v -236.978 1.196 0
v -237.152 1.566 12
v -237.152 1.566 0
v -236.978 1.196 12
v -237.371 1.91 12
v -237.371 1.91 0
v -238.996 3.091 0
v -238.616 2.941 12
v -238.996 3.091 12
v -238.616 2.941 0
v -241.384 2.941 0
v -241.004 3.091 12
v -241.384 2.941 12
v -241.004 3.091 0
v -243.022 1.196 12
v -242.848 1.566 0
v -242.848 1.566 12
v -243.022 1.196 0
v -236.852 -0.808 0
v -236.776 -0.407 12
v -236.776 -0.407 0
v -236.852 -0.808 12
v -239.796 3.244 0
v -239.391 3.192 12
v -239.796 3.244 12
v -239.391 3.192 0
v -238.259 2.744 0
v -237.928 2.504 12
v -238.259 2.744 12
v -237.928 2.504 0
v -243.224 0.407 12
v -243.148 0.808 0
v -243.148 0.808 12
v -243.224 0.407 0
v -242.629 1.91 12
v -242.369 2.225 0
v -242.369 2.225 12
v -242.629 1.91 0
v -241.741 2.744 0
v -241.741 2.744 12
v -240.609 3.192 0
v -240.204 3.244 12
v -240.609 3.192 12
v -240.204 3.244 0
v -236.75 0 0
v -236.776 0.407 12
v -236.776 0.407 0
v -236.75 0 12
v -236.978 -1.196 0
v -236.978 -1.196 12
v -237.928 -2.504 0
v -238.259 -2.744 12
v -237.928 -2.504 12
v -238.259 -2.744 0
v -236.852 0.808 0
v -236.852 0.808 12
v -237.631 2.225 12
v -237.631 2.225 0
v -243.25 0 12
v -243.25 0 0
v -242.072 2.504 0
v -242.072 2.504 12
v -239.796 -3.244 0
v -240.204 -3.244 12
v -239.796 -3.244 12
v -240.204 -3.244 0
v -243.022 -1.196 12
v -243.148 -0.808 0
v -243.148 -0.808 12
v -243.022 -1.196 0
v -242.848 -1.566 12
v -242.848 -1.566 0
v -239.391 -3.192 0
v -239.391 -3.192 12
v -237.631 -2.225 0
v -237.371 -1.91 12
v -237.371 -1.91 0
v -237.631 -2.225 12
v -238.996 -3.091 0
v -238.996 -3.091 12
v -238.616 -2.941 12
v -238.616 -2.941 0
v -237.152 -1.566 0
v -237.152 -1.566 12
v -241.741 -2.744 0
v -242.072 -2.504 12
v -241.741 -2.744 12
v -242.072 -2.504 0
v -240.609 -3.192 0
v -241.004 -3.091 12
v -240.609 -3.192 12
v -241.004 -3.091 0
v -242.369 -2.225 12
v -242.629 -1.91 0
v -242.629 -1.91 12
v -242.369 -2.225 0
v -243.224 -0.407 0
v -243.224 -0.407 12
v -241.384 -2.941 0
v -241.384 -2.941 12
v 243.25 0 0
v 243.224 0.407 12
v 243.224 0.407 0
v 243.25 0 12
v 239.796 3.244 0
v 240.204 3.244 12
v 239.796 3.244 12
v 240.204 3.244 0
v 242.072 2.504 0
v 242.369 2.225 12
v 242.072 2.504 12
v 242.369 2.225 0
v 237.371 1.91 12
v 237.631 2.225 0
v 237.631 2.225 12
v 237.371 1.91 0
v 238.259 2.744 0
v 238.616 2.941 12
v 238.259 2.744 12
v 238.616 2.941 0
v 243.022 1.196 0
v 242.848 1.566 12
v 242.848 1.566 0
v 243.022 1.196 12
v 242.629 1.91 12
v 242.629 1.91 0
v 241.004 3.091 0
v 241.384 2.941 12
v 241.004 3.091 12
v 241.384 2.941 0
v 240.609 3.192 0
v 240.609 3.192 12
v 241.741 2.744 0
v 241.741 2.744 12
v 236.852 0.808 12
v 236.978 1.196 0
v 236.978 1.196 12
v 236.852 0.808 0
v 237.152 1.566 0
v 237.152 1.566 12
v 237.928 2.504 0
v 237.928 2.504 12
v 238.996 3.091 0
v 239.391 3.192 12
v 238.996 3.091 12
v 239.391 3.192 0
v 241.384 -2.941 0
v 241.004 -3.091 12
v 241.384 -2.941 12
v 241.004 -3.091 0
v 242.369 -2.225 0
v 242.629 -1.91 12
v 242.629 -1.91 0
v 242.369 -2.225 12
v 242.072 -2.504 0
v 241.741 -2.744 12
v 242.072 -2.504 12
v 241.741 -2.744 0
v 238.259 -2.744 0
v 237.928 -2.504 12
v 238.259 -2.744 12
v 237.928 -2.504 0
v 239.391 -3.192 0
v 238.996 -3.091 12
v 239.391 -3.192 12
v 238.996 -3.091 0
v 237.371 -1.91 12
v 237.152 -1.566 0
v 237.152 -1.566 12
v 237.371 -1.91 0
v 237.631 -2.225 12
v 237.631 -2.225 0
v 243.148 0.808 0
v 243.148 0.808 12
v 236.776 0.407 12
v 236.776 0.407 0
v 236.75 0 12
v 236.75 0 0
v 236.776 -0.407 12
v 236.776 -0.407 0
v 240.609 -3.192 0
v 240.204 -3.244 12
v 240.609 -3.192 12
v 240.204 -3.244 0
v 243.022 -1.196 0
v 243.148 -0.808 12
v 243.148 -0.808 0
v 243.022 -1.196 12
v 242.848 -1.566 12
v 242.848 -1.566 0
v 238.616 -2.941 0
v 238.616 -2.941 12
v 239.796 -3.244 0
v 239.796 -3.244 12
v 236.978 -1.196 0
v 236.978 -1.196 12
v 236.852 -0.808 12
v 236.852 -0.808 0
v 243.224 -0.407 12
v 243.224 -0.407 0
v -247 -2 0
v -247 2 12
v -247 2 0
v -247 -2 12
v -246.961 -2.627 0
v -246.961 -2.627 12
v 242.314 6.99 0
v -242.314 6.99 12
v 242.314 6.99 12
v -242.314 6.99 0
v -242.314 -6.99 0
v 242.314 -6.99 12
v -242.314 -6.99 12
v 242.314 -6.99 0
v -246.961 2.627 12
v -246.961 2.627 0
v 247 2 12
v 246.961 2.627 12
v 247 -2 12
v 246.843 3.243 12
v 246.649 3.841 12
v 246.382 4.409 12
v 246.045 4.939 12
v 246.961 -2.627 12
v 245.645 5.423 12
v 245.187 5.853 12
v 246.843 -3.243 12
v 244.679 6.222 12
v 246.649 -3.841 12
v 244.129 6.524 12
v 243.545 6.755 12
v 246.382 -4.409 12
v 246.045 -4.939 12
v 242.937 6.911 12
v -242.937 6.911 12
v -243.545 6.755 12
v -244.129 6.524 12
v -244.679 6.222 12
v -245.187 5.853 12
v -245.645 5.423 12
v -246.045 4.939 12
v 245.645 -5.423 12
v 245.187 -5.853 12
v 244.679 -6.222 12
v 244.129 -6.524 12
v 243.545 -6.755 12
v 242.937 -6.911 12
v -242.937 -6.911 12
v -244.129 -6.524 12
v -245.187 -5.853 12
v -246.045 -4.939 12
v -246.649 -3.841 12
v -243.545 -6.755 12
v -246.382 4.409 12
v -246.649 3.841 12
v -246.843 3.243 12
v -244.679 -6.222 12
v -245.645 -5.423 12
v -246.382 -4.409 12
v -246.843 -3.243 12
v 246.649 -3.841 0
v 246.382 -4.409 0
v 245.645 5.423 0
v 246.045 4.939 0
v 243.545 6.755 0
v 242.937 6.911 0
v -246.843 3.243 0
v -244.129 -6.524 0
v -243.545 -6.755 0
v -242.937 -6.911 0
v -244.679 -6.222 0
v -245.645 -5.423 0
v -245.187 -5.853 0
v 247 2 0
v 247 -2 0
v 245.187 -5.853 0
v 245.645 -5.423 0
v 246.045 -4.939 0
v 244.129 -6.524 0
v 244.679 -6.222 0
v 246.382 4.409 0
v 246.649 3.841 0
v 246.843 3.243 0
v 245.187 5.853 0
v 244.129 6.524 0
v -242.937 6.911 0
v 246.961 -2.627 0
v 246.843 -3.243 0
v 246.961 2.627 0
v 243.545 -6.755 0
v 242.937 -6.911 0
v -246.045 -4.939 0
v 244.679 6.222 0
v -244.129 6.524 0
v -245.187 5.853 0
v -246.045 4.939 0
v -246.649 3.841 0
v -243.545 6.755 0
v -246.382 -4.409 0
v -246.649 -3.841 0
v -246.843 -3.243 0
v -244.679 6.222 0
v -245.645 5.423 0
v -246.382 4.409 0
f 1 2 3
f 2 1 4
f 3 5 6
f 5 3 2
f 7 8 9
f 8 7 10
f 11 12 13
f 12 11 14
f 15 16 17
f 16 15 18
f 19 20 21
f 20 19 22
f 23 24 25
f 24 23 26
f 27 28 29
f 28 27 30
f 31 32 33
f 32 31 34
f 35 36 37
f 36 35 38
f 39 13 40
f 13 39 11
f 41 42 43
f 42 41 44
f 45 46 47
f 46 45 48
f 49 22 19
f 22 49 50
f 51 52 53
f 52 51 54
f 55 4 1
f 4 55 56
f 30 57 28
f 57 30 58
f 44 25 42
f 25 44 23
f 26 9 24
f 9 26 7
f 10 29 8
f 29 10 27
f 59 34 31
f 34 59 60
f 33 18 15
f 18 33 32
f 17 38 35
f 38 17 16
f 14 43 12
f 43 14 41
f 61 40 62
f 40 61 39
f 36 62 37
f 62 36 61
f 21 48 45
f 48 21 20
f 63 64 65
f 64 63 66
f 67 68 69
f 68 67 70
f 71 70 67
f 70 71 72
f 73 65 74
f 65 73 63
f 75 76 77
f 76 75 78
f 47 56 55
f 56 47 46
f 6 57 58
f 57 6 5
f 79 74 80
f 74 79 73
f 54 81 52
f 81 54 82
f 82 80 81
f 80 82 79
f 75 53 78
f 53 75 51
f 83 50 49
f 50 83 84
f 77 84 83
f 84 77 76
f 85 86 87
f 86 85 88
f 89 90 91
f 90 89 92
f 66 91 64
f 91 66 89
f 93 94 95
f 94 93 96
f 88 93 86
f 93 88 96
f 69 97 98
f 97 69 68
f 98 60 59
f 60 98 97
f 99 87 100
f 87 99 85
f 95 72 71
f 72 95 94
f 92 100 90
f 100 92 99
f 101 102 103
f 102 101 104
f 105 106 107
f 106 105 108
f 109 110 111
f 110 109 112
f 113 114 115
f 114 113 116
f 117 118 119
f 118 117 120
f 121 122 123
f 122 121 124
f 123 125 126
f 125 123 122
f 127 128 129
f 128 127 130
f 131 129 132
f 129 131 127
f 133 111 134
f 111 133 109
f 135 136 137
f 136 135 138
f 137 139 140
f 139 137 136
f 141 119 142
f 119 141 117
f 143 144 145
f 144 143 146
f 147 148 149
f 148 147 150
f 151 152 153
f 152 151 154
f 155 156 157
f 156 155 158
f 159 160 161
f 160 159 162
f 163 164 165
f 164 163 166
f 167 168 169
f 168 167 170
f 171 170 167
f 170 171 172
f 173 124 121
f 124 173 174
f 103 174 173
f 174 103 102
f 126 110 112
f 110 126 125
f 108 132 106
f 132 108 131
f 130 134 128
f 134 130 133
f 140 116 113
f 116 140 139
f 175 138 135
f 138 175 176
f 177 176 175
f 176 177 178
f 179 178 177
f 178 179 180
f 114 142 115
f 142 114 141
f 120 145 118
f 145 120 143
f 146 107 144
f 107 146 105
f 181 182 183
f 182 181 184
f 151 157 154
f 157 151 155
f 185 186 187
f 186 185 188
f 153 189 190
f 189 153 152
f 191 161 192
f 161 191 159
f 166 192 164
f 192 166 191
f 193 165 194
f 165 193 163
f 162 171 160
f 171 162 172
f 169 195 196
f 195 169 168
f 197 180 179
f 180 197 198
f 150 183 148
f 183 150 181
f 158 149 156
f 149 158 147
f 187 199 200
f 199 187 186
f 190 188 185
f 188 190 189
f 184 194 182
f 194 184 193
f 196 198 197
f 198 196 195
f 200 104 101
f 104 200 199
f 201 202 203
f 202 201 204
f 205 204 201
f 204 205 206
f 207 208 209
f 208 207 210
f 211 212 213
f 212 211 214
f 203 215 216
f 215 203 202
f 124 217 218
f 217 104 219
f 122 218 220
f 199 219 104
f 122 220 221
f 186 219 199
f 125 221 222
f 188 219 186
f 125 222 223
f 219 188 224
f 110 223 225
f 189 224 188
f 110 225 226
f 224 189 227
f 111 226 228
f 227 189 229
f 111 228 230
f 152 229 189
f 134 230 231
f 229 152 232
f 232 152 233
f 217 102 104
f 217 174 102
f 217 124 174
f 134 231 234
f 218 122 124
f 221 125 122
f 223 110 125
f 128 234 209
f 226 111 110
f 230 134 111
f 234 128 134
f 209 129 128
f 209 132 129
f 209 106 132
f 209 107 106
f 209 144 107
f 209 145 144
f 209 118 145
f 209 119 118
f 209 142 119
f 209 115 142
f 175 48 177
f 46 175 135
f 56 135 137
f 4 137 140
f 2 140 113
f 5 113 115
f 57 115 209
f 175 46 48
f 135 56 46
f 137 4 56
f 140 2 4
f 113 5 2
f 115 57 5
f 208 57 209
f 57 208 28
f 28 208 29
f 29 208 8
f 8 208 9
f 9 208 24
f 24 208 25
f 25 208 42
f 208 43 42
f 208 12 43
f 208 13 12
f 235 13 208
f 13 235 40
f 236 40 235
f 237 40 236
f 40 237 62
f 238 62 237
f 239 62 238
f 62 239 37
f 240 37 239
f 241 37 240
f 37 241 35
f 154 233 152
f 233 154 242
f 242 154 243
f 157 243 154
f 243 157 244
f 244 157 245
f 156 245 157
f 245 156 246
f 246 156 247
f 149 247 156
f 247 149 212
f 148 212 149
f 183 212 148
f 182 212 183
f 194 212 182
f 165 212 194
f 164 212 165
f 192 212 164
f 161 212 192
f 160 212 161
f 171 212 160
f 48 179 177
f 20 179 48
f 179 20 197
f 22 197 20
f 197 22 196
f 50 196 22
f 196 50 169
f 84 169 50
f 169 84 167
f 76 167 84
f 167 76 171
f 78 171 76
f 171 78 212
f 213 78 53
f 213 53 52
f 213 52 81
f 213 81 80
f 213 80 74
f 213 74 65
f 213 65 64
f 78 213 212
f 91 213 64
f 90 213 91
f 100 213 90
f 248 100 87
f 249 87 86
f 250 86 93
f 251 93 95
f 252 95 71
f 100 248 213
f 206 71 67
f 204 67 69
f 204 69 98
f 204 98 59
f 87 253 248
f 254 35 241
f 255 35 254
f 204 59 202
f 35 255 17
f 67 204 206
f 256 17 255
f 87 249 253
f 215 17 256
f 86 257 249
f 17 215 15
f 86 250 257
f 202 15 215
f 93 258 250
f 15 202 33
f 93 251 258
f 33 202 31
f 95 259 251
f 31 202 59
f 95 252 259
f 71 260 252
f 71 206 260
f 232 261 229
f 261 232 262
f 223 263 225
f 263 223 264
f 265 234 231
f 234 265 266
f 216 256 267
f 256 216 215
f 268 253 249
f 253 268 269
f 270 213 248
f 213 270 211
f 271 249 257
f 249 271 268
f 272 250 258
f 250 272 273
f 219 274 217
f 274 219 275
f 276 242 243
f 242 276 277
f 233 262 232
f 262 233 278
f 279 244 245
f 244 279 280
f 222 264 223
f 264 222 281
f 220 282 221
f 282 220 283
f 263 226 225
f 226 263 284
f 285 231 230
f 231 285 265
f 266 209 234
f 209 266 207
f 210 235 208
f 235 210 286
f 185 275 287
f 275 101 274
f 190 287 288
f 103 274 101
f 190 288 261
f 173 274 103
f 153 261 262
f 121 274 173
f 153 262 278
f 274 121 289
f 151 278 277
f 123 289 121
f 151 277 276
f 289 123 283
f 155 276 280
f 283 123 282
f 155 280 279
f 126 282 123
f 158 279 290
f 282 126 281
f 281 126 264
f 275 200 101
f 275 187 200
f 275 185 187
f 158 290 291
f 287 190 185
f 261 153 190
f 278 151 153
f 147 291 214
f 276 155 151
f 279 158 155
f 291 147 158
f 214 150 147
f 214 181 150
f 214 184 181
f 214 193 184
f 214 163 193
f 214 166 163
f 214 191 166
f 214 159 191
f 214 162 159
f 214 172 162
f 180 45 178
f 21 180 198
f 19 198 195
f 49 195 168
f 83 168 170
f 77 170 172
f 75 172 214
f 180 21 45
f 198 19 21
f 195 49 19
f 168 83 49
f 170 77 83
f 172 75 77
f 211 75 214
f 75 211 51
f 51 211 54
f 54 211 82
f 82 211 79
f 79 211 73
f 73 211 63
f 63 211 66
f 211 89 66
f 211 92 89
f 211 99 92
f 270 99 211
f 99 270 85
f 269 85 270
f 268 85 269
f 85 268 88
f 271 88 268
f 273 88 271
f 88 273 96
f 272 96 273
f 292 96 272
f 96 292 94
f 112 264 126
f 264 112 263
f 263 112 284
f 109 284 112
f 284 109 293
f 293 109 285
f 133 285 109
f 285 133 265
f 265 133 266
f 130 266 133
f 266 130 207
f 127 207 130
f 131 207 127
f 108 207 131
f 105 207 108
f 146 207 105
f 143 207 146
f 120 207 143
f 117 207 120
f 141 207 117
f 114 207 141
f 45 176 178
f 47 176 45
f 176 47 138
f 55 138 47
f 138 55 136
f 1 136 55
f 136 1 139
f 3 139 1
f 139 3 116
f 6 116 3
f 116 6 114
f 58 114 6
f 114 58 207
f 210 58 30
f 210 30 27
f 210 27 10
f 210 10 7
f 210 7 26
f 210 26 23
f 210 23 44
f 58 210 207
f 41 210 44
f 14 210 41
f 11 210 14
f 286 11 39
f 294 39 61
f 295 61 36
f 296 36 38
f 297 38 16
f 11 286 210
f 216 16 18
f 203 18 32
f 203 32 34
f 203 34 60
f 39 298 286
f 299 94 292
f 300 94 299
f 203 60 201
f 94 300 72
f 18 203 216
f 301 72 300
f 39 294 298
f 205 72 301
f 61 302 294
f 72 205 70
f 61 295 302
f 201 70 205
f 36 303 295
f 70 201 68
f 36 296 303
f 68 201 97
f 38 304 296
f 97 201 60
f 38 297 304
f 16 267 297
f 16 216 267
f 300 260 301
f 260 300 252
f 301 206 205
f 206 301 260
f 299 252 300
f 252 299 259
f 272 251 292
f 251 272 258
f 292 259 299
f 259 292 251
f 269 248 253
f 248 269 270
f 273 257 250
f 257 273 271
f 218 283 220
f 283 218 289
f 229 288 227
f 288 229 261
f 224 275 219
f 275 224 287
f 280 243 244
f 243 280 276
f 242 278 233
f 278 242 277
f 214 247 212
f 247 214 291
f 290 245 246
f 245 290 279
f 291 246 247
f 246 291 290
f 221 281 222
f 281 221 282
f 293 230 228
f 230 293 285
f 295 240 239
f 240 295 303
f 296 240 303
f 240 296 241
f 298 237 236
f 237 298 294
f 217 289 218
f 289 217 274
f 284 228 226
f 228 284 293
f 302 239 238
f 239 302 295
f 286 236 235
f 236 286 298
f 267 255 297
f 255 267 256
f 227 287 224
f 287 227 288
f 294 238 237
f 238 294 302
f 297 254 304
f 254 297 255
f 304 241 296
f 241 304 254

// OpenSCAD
$fn = 50;


difference() {
	union() {
		hull() {
			translate(v = [-242.0000000000, 2.0000000000, 0]) {
				cylinder(h = 12, r = 5);
			}
			translate(v = [242.0000000000, 2.0000000000, 0]) {
				cylinder(h = 12, r = 5);
			}
			translate(v = [-242.0000000000, -2.0000000000, 0]) {
				cylinder(h = 12, r = 5);
			}
			translate(v = [242.0000000000, -2.0000000000, 0]) {
				cylinder(h = 12, r = 5);
			}
		}
	}
	union() {
		translate(v = [-240.0000000000, 0.0000000000, -100.0000000000]) {
			cylinder(h = 200, r = 3.2500000000);
		}
		translate(v = [-240.0000000000, 0.0000000000, -100.0000000000]) {
			cylinder(h = 200, r = 3.2500000000);
		}
		translate(v = [240.0000000000, 0.0000000000, -100.0000000000]) {
			cylinder(h = 200, r = 3.2500000000);
		}
		translate(v = [240.0000000000, 0.0000000000, -100.0000000000]) {
			cylinder(h = 200, r = 3.2500000000);
		}
	}
}
